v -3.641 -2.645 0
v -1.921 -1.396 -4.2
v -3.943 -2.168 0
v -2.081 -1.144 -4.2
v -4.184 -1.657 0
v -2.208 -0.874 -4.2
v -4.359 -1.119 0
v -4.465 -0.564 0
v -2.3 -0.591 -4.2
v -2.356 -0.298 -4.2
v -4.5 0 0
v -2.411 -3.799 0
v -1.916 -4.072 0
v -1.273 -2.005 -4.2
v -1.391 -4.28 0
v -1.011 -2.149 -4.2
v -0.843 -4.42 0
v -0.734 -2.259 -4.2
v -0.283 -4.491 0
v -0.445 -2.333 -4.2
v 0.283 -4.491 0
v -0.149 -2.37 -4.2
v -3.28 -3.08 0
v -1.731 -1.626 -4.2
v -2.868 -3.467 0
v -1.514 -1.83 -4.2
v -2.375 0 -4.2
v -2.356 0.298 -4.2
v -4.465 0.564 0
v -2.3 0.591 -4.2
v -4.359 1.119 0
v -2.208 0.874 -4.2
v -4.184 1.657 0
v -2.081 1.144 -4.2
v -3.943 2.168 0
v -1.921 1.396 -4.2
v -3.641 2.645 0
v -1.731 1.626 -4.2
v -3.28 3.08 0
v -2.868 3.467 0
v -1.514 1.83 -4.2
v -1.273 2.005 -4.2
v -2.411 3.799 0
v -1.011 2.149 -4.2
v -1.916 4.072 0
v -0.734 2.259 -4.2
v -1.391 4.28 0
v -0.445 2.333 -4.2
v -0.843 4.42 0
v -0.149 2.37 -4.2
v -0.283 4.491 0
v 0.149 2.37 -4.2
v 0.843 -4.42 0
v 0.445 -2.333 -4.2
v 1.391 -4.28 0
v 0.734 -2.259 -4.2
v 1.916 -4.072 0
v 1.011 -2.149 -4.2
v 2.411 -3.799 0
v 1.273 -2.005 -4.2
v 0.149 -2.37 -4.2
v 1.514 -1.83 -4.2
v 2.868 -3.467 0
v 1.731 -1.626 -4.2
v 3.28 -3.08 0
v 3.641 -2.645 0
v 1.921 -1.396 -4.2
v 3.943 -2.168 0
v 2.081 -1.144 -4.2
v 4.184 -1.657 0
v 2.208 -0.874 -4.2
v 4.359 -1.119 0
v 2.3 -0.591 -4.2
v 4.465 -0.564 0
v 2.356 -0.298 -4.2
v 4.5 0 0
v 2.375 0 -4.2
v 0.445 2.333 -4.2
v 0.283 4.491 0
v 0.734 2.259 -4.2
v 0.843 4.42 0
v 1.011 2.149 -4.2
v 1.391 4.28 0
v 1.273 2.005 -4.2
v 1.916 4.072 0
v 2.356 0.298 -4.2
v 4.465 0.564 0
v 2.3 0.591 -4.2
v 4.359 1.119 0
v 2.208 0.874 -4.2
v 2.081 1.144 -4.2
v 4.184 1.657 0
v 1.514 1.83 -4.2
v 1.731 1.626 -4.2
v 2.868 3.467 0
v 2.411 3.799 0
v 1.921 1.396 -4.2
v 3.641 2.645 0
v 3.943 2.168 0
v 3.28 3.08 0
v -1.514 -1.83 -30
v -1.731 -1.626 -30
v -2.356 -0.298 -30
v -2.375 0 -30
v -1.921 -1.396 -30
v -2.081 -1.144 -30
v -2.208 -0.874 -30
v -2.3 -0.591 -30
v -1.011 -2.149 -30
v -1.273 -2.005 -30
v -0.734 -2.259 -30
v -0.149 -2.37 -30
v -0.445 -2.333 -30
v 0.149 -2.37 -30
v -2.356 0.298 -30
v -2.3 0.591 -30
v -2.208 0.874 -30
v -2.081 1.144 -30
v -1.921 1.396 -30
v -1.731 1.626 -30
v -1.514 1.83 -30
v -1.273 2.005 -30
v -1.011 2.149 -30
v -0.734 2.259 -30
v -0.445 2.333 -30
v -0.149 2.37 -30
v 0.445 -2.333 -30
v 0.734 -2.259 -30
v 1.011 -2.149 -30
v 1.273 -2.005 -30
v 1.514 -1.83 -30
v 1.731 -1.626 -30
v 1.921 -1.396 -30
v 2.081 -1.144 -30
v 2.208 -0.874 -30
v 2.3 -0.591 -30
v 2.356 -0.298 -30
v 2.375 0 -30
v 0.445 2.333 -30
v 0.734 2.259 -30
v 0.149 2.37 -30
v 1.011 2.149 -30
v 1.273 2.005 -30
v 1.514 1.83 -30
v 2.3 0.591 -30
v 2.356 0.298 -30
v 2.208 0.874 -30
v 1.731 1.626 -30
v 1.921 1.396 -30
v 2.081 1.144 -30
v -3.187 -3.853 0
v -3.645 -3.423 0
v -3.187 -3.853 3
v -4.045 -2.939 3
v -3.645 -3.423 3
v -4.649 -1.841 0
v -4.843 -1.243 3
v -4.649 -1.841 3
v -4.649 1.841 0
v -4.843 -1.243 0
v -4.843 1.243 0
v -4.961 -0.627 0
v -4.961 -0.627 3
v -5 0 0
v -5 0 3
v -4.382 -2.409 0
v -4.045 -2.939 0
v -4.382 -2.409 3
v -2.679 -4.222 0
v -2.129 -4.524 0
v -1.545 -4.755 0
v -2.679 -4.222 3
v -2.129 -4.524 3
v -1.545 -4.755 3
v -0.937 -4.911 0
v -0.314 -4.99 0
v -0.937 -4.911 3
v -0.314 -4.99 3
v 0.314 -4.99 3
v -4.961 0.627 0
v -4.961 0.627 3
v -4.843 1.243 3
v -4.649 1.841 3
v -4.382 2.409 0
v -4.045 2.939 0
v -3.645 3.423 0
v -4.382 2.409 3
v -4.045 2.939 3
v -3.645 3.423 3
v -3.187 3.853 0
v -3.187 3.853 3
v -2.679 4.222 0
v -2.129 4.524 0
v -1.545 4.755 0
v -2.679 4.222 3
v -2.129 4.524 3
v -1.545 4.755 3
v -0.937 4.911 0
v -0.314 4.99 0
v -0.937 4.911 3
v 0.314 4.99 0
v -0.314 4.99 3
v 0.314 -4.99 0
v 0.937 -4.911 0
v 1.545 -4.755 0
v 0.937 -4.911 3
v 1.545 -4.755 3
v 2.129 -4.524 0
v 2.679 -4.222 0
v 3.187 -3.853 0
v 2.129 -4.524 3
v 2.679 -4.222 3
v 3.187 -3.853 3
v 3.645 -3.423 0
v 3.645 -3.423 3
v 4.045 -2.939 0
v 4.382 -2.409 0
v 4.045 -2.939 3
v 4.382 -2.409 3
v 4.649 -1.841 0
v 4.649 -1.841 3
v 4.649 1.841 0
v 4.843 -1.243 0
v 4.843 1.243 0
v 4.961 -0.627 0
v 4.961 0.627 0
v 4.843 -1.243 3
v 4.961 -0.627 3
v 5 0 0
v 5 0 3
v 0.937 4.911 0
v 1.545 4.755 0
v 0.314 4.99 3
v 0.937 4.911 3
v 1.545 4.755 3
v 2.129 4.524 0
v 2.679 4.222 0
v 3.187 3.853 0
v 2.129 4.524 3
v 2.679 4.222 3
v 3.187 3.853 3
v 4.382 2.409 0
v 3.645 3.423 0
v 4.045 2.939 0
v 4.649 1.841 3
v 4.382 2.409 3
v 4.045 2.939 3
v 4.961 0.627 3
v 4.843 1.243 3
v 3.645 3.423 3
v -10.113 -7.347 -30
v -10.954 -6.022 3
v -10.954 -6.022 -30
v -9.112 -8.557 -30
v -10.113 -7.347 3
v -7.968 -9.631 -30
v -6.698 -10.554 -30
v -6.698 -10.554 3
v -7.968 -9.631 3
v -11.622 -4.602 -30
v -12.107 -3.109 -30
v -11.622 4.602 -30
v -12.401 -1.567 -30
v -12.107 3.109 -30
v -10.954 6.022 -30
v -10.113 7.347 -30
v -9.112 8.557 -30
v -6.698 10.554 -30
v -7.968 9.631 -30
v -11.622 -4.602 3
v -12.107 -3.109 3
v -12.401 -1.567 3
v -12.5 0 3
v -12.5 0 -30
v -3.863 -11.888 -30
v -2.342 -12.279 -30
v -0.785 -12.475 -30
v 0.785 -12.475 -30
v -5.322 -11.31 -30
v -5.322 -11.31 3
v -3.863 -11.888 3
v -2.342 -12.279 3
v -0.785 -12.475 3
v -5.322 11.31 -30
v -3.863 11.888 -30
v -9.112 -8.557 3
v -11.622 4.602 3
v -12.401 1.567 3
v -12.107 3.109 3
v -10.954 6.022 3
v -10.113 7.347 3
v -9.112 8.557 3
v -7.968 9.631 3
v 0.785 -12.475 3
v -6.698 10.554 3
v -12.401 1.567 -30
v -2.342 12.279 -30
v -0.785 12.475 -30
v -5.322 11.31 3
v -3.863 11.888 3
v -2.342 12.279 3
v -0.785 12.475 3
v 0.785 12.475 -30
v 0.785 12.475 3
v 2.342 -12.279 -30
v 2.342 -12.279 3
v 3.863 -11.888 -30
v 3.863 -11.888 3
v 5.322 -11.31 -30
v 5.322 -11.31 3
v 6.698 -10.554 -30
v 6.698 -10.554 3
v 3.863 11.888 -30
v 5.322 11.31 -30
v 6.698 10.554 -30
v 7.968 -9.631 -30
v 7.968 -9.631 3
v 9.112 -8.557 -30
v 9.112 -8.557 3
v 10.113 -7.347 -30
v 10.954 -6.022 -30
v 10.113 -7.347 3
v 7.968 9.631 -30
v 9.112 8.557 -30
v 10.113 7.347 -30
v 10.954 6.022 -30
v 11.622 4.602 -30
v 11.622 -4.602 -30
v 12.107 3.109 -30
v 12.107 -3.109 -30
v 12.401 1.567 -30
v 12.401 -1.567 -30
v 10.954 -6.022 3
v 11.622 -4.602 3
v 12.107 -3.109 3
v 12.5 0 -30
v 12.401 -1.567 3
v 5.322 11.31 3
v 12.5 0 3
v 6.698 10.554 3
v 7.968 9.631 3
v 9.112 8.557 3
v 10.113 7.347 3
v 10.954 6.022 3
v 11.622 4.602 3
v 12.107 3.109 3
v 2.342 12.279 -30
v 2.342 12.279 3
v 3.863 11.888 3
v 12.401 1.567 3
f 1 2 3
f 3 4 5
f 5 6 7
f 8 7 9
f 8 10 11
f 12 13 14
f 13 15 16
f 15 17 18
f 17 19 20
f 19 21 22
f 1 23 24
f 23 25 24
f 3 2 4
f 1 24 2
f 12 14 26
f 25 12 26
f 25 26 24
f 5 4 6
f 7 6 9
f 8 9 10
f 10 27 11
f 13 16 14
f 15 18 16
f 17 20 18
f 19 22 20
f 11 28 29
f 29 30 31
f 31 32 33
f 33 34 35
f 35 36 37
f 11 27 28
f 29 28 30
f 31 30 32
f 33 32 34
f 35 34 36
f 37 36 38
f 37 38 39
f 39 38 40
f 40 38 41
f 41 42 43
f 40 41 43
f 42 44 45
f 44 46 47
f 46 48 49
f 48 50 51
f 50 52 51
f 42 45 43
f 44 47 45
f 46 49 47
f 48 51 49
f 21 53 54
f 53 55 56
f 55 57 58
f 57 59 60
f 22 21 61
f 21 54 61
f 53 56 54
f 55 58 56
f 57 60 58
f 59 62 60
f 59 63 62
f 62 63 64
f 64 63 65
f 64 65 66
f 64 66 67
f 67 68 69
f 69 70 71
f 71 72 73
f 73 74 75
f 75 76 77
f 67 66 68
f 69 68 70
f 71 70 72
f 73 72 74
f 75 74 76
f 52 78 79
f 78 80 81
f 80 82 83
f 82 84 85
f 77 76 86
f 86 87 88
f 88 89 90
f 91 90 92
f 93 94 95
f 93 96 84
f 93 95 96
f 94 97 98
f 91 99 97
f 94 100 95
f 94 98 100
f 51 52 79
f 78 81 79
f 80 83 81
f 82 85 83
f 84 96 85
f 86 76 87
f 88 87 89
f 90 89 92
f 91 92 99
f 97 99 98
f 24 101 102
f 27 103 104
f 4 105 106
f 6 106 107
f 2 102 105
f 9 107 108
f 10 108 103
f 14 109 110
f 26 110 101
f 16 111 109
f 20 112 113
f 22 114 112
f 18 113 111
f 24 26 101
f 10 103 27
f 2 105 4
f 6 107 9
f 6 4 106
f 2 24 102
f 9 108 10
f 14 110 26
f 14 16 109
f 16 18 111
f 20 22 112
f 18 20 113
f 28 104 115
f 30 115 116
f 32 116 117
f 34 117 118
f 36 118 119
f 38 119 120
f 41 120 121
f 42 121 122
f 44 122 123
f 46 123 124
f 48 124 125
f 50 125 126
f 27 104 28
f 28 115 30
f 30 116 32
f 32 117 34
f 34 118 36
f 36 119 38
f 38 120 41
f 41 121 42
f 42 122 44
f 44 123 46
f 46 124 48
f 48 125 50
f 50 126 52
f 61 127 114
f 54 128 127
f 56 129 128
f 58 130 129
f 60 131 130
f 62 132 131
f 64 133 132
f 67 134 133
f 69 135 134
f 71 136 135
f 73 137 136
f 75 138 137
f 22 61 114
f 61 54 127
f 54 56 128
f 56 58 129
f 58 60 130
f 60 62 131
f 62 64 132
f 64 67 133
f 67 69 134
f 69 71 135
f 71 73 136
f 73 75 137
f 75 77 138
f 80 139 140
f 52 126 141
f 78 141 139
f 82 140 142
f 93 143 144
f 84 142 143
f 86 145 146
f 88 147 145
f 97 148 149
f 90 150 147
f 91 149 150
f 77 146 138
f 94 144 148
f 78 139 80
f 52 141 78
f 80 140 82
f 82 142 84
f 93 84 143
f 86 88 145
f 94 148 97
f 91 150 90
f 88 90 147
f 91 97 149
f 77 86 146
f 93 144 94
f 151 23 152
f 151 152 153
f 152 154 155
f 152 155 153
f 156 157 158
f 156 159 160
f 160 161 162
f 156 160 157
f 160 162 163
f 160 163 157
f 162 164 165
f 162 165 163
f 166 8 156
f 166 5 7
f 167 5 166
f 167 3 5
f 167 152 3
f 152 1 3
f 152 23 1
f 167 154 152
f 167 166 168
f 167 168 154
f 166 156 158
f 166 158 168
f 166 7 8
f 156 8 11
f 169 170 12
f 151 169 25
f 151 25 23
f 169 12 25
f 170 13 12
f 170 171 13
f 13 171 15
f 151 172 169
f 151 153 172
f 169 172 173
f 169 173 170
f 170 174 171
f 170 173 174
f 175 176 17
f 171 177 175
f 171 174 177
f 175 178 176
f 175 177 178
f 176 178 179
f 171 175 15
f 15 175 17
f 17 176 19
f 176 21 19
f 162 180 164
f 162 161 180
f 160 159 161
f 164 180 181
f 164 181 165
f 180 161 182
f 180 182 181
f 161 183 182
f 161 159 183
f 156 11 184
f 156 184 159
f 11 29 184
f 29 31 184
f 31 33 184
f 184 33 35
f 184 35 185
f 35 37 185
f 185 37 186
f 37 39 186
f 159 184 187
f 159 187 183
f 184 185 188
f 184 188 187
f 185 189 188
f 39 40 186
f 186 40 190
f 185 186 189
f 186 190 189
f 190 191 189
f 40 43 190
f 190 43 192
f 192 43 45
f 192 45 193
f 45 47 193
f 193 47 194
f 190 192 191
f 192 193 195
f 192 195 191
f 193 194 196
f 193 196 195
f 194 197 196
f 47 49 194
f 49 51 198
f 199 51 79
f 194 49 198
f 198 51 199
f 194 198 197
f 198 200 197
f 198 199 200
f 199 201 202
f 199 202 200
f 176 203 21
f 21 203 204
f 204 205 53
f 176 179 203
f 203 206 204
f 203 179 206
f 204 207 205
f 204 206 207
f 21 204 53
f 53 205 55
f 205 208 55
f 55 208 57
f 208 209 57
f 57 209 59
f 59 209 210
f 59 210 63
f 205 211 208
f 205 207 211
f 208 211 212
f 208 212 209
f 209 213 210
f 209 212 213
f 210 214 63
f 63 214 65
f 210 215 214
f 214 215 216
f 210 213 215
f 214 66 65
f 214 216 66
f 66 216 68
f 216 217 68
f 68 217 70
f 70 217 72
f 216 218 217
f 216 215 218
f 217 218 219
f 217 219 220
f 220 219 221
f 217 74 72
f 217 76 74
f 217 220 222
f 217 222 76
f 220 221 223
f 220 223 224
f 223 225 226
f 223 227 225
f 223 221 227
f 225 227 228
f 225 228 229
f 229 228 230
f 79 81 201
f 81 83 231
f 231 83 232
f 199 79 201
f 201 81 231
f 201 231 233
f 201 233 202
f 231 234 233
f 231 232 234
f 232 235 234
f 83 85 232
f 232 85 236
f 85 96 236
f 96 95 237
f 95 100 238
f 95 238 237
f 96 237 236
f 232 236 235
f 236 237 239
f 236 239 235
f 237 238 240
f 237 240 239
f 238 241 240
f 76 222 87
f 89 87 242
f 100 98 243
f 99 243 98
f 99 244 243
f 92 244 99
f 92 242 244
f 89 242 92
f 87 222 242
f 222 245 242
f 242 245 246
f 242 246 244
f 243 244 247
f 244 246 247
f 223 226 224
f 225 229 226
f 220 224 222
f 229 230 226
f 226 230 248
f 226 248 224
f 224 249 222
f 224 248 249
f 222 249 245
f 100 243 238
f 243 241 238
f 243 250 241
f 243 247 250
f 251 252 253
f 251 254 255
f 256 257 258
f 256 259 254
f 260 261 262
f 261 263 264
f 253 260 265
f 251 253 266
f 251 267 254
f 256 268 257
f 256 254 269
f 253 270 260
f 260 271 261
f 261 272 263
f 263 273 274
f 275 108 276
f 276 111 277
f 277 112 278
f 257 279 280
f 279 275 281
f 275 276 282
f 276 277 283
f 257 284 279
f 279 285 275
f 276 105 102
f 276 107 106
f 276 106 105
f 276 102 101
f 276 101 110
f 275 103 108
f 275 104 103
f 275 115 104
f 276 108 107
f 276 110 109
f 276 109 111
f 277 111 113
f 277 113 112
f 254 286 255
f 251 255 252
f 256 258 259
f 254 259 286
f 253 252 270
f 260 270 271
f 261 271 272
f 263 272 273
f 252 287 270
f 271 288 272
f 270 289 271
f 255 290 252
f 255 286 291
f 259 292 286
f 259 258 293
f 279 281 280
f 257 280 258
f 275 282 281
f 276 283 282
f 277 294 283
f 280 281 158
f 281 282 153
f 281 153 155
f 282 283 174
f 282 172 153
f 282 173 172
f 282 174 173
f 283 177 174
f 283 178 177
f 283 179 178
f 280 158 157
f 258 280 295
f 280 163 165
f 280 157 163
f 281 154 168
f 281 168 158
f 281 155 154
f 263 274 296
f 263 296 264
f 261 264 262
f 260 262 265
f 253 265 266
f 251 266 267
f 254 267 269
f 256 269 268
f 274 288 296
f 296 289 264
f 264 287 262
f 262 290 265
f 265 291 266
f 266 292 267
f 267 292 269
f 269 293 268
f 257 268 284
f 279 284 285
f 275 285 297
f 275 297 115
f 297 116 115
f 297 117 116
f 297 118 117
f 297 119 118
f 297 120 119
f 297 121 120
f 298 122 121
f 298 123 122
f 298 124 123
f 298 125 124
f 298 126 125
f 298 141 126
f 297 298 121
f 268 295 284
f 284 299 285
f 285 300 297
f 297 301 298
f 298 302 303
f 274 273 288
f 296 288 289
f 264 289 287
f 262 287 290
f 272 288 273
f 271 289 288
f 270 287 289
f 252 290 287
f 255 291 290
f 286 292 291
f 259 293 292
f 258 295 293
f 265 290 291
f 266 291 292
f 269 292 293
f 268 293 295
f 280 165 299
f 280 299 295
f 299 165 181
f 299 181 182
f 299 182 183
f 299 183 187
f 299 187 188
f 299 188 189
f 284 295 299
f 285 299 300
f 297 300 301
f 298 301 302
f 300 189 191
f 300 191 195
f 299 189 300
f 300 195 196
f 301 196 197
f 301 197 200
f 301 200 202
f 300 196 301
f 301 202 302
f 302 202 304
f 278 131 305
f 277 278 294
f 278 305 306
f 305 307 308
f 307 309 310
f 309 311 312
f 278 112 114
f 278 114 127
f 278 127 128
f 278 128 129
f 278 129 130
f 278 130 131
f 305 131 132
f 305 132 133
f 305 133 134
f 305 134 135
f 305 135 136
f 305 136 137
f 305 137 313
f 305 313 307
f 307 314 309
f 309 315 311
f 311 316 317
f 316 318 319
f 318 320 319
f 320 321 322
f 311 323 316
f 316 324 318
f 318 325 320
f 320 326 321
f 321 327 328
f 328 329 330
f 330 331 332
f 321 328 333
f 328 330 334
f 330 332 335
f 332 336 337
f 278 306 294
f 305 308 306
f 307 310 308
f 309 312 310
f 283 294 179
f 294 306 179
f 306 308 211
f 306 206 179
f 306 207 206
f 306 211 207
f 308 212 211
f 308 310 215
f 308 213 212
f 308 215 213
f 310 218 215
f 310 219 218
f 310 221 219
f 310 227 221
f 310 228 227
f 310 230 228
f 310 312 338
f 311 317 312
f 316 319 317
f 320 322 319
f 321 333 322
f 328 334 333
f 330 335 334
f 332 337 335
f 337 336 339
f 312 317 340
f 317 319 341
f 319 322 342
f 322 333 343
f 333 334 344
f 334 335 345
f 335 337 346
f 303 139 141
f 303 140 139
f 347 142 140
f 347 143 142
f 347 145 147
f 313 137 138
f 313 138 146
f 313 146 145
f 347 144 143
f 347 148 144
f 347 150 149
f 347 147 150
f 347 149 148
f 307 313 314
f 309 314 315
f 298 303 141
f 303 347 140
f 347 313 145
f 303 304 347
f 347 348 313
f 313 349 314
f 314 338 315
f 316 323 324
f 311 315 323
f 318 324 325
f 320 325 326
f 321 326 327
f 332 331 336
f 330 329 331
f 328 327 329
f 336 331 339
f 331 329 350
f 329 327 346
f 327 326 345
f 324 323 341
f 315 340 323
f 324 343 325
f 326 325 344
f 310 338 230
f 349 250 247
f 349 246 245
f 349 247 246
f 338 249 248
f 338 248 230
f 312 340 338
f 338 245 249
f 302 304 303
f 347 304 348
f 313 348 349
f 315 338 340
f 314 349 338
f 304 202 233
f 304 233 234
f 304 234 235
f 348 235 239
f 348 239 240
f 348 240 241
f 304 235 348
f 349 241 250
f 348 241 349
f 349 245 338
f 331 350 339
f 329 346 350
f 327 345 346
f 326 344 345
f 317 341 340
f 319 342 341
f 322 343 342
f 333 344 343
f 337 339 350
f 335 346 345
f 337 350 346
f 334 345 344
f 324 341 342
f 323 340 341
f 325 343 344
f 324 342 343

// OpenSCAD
$fn = 50;

difference() {
	union() {
		translate(v = [0, 0, -30.0]) {
			cylinder(h = 33, r = 12.5);
		}
	}
	union() {
		translate(v = [0, 0, 0]) {
			rotate(a = [0, 0, 0]) {
				difference() {
					union() {
						translate(v = [0, 0, -33.0]) {
							cylinder(h = 33, r = 2.25);
						}
						translate(v = [0, 0, -4.2]) {
							cylinder(h = 4.2, r1 = 2.375, r2 = 4.5);
						}
						translate(v = [0, 0, -33.0]) {
							cylinder(h = 33, r = 2.375);
						}
						translate(v = [0, 0, -33.0]) {
							cylinder(h = 33, r = 2.25);
						}
					}
					union();
				}
			}
		}
		#cylinder(h = 3, r = 5.0);
	}
}
